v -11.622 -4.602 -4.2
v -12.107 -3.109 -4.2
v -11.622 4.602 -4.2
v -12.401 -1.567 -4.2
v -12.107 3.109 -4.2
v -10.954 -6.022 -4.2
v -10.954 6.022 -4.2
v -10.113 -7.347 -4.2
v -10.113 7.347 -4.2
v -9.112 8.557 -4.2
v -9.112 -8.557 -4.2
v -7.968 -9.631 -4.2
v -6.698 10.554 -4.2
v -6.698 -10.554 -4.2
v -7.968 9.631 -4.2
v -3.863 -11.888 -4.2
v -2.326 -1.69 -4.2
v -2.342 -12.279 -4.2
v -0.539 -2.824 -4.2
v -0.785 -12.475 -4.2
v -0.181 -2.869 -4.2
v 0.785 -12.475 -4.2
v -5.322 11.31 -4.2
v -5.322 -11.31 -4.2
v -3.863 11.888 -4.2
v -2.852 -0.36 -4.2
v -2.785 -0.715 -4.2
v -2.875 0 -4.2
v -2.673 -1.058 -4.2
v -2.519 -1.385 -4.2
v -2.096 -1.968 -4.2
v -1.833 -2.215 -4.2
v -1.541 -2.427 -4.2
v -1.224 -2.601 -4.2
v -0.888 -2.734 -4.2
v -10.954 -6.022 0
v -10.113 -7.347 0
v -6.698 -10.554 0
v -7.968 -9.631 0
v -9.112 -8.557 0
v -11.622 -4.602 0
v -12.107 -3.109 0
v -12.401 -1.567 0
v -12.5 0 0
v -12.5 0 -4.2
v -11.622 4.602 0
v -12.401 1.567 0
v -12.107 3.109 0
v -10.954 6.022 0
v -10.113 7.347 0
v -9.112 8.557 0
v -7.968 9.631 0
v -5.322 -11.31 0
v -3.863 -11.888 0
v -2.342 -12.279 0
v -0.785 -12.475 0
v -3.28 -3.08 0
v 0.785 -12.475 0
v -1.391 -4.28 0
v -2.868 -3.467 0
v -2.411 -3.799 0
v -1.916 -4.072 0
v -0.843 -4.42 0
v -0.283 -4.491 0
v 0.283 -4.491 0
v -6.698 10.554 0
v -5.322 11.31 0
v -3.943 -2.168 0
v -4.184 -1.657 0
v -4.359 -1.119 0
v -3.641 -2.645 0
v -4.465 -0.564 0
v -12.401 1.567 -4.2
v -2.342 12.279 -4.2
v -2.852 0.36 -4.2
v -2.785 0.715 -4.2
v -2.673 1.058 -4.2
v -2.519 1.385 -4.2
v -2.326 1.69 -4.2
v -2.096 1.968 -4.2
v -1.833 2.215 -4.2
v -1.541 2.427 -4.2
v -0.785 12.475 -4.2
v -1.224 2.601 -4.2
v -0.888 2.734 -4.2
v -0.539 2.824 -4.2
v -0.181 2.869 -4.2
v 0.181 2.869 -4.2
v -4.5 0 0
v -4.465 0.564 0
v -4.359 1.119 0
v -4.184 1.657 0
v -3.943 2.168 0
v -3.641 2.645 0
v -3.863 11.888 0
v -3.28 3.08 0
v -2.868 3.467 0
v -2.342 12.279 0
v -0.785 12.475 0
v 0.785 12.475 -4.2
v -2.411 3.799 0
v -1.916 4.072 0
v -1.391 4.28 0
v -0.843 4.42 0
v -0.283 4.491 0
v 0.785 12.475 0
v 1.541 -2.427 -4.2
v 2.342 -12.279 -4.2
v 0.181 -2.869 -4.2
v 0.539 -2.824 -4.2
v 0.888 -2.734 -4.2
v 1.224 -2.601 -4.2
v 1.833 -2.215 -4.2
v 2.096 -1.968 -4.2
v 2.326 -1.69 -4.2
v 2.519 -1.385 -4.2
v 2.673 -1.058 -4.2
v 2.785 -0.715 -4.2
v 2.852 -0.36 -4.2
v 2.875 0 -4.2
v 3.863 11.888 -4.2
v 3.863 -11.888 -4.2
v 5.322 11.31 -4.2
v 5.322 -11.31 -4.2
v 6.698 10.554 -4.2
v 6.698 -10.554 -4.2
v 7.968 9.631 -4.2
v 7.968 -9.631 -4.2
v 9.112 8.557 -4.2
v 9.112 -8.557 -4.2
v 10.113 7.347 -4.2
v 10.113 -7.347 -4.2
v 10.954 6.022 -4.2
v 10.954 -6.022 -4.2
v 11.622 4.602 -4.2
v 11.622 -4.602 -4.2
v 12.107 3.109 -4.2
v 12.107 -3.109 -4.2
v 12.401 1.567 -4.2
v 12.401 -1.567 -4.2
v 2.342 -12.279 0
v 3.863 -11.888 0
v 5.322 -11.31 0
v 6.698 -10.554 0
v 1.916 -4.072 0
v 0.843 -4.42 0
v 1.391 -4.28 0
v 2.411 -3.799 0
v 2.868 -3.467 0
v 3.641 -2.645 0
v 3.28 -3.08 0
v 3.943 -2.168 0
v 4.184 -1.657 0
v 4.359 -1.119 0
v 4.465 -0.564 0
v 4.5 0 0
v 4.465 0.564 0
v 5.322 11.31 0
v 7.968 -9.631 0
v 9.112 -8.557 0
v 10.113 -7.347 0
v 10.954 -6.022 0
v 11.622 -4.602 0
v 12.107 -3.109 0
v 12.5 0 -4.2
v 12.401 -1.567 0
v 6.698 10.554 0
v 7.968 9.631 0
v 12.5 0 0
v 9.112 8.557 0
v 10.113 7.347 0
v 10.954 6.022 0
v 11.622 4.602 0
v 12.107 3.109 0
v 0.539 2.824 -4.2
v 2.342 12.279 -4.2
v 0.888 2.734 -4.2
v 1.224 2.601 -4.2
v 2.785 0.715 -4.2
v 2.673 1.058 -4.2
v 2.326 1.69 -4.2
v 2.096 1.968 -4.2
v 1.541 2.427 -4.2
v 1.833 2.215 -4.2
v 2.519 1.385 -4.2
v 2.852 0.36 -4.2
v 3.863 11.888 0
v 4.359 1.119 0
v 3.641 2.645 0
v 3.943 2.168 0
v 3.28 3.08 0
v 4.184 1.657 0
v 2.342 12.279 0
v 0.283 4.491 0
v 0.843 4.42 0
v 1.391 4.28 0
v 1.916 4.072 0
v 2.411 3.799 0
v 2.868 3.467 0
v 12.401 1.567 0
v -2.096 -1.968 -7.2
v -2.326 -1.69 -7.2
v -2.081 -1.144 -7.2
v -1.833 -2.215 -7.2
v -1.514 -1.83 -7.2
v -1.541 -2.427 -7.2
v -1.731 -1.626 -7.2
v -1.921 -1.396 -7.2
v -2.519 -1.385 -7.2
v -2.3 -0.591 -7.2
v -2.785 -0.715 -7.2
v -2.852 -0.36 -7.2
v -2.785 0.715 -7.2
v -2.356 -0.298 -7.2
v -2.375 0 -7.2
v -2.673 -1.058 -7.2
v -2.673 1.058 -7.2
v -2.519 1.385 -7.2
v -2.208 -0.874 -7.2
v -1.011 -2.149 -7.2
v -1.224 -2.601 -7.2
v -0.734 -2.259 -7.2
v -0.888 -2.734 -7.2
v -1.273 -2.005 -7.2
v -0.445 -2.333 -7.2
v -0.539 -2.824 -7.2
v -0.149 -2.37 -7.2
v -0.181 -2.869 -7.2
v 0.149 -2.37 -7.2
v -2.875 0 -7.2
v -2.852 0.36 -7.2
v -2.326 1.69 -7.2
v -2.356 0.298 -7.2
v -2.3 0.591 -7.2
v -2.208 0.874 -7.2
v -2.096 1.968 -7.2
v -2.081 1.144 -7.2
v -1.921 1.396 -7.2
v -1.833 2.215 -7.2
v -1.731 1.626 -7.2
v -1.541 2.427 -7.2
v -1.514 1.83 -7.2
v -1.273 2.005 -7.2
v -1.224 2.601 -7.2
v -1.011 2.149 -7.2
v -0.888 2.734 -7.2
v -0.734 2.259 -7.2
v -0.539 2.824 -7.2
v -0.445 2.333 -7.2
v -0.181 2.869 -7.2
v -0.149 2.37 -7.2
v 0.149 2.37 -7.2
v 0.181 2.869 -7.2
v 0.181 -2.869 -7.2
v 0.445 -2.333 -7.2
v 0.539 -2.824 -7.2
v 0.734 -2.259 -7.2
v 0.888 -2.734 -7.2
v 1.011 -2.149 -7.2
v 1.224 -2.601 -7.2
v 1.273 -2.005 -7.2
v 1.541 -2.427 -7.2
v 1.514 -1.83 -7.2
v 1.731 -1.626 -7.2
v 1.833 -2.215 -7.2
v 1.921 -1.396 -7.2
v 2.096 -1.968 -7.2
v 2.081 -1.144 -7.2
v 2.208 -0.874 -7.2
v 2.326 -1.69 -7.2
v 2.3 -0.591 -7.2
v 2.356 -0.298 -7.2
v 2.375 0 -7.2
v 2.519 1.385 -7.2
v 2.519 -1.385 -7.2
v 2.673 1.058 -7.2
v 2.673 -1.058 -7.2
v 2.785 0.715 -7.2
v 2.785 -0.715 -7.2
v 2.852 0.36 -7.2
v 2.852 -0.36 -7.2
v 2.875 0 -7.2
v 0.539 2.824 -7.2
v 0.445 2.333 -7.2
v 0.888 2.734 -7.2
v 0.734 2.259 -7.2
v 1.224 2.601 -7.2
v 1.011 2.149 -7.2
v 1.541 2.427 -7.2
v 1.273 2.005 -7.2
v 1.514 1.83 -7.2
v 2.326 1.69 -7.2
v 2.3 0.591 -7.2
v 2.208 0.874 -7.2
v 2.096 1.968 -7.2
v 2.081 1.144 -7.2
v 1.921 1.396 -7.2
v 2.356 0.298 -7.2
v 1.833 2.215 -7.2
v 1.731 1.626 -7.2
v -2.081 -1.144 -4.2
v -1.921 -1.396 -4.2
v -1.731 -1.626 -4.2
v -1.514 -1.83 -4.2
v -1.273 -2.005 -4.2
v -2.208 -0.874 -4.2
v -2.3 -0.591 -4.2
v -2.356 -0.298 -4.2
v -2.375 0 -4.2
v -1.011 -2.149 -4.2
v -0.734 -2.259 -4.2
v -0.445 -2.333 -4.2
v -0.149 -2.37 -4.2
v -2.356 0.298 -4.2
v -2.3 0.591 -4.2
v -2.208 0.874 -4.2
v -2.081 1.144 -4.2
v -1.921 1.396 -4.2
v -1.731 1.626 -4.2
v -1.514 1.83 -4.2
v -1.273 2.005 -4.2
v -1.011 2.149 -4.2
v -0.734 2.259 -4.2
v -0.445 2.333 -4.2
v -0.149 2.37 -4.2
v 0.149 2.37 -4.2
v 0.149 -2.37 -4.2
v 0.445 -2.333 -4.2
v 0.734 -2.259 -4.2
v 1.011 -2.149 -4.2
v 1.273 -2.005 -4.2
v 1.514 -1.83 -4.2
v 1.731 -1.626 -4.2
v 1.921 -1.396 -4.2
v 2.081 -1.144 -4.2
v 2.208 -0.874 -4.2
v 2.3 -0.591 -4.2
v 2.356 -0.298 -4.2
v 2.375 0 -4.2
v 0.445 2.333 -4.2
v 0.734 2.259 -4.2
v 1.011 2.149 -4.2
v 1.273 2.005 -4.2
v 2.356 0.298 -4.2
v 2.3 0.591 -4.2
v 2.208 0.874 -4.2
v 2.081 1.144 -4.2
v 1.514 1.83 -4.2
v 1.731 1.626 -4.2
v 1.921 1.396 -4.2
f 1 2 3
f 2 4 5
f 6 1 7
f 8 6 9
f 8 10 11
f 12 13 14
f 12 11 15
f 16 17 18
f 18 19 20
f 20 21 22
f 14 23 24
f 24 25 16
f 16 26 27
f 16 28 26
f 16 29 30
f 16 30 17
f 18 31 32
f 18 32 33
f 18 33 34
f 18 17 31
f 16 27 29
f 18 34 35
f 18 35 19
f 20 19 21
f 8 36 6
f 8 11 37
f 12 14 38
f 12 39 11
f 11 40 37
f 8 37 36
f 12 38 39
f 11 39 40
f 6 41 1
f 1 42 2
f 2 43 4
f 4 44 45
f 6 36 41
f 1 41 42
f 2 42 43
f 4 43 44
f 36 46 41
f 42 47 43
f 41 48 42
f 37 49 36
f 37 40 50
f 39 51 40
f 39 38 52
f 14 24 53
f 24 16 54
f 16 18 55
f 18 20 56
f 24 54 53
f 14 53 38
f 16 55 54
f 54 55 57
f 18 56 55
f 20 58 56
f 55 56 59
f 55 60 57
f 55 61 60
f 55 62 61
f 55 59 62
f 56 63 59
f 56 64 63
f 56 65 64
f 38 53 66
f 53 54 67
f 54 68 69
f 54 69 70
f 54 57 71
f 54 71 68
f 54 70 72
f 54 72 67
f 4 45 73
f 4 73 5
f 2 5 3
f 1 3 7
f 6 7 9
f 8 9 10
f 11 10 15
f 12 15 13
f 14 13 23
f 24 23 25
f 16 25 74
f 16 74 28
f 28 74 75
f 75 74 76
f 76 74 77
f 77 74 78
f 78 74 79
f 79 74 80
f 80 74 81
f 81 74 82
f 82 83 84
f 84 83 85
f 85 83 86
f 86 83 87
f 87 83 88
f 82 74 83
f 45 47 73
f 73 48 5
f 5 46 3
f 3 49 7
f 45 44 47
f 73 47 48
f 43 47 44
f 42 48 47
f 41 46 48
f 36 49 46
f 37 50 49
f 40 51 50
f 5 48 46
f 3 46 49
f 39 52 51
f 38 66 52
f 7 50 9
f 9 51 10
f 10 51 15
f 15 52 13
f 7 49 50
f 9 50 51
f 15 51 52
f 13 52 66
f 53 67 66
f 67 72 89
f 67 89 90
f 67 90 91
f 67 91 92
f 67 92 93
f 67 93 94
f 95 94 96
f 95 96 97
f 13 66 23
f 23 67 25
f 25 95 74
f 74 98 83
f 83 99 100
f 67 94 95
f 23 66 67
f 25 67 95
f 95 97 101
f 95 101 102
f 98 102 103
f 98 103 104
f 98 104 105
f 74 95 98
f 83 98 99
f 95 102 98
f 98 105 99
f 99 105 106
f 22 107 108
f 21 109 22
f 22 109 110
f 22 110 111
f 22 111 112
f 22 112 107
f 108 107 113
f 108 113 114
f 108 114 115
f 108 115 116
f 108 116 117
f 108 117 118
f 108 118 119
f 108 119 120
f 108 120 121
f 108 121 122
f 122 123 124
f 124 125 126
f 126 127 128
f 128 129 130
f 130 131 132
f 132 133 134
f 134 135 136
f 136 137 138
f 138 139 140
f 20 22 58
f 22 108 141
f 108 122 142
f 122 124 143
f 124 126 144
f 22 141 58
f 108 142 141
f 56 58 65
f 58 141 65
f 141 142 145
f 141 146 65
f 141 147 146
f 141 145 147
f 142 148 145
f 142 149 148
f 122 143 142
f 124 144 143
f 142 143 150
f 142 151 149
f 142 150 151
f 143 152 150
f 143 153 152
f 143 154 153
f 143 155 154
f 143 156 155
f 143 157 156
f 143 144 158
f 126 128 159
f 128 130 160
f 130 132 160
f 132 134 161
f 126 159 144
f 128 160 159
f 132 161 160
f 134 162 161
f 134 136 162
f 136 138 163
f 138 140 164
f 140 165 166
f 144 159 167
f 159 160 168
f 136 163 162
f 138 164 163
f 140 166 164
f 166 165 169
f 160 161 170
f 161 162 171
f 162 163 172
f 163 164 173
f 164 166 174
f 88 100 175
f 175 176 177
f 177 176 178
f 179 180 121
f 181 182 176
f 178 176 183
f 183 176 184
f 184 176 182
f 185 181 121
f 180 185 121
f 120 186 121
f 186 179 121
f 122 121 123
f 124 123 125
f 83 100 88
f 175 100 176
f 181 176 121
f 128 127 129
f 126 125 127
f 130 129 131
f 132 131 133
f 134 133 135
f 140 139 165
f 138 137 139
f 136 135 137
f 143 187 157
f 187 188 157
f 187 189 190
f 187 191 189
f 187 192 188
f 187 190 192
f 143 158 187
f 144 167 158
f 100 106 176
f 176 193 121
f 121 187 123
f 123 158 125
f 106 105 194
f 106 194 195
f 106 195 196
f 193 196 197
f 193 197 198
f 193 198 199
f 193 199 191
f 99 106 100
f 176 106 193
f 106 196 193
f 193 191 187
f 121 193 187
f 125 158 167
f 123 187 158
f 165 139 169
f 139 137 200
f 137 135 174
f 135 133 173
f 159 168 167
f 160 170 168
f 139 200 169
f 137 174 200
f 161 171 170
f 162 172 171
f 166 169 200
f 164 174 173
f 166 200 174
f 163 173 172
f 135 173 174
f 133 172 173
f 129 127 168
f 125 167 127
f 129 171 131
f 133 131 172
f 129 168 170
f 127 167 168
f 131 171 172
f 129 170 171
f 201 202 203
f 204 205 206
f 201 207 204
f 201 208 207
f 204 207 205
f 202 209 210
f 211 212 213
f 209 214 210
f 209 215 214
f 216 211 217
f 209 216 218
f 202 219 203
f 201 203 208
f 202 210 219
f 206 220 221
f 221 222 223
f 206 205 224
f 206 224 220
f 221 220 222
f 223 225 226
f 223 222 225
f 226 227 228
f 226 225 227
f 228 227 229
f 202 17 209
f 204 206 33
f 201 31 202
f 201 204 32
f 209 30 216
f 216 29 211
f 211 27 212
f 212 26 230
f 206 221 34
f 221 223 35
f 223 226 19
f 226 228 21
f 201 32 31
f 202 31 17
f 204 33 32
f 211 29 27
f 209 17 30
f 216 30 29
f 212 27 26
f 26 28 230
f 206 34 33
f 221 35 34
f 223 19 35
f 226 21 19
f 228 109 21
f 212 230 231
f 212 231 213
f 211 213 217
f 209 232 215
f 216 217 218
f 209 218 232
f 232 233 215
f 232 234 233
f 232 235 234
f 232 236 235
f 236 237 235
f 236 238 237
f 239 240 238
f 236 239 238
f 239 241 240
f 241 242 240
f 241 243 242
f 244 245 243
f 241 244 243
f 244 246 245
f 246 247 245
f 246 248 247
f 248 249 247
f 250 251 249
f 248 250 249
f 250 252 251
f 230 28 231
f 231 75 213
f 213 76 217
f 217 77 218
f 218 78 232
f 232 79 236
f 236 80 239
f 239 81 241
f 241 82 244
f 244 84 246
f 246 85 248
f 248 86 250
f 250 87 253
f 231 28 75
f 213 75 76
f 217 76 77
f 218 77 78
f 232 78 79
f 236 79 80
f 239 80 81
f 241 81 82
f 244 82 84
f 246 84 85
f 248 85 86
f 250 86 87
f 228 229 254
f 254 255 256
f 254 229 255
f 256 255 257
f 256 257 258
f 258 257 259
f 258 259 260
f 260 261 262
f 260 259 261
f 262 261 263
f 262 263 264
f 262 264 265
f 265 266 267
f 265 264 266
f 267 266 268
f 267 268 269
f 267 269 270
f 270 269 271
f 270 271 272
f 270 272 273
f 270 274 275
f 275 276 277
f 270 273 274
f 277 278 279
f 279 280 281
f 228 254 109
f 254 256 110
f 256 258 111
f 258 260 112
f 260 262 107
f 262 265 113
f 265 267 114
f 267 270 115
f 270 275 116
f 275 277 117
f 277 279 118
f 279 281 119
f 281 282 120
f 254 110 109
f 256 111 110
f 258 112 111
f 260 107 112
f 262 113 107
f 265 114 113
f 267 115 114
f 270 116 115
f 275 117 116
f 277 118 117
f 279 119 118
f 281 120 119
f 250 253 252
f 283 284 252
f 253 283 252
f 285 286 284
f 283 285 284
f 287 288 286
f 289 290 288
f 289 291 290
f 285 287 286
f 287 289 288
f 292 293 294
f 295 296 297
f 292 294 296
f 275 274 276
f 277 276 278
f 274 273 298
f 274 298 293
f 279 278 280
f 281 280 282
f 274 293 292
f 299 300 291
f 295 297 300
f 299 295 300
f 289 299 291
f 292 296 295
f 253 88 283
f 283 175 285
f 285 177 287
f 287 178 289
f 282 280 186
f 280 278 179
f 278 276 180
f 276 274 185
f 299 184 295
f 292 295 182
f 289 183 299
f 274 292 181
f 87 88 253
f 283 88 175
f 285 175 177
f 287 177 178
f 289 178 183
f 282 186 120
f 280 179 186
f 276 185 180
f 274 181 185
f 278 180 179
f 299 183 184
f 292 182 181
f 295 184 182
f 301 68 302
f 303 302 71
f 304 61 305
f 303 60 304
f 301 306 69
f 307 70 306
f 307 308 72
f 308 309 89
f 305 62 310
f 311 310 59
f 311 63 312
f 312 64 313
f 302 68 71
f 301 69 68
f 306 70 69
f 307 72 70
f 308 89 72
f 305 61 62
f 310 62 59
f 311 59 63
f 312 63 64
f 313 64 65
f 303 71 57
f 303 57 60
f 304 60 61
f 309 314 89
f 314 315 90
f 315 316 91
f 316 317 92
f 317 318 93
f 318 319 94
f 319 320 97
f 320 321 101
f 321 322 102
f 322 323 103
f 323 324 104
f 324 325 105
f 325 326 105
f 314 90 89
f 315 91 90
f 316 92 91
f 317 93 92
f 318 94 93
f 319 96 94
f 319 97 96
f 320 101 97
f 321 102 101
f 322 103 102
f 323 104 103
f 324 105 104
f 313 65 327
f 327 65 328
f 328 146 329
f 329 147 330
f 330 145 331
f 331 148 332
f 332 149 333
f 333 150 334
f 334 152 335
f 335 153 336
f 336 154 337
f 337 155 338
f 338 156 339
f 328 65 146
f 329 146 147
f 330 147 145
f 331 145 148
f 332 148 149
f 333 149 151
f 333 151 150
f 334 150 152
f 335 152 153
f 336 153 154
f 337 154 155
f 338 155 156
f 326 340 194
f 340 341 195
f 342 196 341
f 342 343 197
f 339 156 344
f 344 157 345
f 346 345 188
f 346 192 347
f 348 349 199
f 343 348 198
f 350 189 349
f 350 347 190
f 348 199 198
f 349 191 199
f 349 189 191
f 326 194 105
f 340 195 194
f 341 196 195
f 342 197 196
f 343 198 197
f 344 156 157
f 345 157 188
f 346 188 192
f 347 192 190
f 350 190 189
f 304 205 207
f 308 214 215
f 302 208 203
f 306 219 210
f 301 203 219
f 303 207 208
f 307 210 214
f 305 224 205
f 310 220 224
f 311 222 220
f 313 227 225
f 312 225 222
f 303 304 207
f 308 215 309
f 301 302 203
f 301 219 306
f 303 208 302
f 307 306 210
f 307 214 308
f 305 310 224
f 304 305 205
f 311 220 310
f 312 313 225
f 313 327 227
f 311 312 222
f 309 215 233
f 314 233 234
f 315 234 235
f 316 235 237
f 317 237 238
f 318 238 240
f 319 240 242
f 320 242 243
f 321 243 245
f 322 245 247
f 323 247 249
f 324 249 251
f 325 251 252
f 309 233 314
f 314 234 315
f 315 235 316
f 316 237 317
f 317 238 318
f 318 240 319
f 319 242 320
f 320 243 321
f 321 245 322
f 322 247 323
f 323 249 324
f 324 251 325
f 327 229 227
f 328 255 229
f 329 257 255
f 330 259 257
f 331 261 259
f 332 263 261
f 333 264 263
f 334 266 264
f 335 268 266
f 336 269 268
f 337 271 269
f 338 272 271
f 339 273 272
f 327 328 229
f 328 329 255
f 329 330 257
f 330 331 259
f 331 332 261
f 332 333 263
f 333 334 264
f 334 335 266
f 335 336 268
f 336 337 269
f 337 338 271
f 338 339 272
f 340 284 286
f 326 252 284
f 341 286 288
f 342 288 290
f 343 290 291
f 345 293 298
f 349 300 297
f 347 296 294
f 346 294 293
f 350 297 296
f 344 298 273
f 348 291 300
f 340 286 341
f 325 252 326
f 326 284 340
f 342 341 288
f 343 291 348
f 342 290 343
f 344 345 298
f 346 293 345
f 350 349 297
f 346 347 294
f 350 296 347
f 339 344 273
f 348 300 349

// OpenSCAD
$fn = 50;

difference() {
	union() {
		translate(v = [0, 0, -4.2]) {
			cylinder(h = 4.2, r = 12.5);
		}
		#translate(v = [0, 0, -7.2]) {
			cylinder(h = 7.2, r = 2.875);
		}
	}
	union() {
		translate(v = [0, 0, 0]) {
			rotate(a = [0, 0, 0]) {
				difference() {
					union() {
						translate(v = [0, 0, -7.2]) {
							cylinder(h = 7.2, r = 2.25);
						}
						translate(v = [0, 0, -4.2]) {
							cylinder(h = 4.2, r1 = 2.375, r2 = 4.5);
						}
						translate(v = [0, 0, -7.2]) {
							cylinder(h = 7.2, r = 2.375);
						}
						translate(v = [0, 0, -7.2]) {
							cylinder(h = 7.2, r = 2.25);
						}
					}
					union();
				}
			}
		}
	}
}
